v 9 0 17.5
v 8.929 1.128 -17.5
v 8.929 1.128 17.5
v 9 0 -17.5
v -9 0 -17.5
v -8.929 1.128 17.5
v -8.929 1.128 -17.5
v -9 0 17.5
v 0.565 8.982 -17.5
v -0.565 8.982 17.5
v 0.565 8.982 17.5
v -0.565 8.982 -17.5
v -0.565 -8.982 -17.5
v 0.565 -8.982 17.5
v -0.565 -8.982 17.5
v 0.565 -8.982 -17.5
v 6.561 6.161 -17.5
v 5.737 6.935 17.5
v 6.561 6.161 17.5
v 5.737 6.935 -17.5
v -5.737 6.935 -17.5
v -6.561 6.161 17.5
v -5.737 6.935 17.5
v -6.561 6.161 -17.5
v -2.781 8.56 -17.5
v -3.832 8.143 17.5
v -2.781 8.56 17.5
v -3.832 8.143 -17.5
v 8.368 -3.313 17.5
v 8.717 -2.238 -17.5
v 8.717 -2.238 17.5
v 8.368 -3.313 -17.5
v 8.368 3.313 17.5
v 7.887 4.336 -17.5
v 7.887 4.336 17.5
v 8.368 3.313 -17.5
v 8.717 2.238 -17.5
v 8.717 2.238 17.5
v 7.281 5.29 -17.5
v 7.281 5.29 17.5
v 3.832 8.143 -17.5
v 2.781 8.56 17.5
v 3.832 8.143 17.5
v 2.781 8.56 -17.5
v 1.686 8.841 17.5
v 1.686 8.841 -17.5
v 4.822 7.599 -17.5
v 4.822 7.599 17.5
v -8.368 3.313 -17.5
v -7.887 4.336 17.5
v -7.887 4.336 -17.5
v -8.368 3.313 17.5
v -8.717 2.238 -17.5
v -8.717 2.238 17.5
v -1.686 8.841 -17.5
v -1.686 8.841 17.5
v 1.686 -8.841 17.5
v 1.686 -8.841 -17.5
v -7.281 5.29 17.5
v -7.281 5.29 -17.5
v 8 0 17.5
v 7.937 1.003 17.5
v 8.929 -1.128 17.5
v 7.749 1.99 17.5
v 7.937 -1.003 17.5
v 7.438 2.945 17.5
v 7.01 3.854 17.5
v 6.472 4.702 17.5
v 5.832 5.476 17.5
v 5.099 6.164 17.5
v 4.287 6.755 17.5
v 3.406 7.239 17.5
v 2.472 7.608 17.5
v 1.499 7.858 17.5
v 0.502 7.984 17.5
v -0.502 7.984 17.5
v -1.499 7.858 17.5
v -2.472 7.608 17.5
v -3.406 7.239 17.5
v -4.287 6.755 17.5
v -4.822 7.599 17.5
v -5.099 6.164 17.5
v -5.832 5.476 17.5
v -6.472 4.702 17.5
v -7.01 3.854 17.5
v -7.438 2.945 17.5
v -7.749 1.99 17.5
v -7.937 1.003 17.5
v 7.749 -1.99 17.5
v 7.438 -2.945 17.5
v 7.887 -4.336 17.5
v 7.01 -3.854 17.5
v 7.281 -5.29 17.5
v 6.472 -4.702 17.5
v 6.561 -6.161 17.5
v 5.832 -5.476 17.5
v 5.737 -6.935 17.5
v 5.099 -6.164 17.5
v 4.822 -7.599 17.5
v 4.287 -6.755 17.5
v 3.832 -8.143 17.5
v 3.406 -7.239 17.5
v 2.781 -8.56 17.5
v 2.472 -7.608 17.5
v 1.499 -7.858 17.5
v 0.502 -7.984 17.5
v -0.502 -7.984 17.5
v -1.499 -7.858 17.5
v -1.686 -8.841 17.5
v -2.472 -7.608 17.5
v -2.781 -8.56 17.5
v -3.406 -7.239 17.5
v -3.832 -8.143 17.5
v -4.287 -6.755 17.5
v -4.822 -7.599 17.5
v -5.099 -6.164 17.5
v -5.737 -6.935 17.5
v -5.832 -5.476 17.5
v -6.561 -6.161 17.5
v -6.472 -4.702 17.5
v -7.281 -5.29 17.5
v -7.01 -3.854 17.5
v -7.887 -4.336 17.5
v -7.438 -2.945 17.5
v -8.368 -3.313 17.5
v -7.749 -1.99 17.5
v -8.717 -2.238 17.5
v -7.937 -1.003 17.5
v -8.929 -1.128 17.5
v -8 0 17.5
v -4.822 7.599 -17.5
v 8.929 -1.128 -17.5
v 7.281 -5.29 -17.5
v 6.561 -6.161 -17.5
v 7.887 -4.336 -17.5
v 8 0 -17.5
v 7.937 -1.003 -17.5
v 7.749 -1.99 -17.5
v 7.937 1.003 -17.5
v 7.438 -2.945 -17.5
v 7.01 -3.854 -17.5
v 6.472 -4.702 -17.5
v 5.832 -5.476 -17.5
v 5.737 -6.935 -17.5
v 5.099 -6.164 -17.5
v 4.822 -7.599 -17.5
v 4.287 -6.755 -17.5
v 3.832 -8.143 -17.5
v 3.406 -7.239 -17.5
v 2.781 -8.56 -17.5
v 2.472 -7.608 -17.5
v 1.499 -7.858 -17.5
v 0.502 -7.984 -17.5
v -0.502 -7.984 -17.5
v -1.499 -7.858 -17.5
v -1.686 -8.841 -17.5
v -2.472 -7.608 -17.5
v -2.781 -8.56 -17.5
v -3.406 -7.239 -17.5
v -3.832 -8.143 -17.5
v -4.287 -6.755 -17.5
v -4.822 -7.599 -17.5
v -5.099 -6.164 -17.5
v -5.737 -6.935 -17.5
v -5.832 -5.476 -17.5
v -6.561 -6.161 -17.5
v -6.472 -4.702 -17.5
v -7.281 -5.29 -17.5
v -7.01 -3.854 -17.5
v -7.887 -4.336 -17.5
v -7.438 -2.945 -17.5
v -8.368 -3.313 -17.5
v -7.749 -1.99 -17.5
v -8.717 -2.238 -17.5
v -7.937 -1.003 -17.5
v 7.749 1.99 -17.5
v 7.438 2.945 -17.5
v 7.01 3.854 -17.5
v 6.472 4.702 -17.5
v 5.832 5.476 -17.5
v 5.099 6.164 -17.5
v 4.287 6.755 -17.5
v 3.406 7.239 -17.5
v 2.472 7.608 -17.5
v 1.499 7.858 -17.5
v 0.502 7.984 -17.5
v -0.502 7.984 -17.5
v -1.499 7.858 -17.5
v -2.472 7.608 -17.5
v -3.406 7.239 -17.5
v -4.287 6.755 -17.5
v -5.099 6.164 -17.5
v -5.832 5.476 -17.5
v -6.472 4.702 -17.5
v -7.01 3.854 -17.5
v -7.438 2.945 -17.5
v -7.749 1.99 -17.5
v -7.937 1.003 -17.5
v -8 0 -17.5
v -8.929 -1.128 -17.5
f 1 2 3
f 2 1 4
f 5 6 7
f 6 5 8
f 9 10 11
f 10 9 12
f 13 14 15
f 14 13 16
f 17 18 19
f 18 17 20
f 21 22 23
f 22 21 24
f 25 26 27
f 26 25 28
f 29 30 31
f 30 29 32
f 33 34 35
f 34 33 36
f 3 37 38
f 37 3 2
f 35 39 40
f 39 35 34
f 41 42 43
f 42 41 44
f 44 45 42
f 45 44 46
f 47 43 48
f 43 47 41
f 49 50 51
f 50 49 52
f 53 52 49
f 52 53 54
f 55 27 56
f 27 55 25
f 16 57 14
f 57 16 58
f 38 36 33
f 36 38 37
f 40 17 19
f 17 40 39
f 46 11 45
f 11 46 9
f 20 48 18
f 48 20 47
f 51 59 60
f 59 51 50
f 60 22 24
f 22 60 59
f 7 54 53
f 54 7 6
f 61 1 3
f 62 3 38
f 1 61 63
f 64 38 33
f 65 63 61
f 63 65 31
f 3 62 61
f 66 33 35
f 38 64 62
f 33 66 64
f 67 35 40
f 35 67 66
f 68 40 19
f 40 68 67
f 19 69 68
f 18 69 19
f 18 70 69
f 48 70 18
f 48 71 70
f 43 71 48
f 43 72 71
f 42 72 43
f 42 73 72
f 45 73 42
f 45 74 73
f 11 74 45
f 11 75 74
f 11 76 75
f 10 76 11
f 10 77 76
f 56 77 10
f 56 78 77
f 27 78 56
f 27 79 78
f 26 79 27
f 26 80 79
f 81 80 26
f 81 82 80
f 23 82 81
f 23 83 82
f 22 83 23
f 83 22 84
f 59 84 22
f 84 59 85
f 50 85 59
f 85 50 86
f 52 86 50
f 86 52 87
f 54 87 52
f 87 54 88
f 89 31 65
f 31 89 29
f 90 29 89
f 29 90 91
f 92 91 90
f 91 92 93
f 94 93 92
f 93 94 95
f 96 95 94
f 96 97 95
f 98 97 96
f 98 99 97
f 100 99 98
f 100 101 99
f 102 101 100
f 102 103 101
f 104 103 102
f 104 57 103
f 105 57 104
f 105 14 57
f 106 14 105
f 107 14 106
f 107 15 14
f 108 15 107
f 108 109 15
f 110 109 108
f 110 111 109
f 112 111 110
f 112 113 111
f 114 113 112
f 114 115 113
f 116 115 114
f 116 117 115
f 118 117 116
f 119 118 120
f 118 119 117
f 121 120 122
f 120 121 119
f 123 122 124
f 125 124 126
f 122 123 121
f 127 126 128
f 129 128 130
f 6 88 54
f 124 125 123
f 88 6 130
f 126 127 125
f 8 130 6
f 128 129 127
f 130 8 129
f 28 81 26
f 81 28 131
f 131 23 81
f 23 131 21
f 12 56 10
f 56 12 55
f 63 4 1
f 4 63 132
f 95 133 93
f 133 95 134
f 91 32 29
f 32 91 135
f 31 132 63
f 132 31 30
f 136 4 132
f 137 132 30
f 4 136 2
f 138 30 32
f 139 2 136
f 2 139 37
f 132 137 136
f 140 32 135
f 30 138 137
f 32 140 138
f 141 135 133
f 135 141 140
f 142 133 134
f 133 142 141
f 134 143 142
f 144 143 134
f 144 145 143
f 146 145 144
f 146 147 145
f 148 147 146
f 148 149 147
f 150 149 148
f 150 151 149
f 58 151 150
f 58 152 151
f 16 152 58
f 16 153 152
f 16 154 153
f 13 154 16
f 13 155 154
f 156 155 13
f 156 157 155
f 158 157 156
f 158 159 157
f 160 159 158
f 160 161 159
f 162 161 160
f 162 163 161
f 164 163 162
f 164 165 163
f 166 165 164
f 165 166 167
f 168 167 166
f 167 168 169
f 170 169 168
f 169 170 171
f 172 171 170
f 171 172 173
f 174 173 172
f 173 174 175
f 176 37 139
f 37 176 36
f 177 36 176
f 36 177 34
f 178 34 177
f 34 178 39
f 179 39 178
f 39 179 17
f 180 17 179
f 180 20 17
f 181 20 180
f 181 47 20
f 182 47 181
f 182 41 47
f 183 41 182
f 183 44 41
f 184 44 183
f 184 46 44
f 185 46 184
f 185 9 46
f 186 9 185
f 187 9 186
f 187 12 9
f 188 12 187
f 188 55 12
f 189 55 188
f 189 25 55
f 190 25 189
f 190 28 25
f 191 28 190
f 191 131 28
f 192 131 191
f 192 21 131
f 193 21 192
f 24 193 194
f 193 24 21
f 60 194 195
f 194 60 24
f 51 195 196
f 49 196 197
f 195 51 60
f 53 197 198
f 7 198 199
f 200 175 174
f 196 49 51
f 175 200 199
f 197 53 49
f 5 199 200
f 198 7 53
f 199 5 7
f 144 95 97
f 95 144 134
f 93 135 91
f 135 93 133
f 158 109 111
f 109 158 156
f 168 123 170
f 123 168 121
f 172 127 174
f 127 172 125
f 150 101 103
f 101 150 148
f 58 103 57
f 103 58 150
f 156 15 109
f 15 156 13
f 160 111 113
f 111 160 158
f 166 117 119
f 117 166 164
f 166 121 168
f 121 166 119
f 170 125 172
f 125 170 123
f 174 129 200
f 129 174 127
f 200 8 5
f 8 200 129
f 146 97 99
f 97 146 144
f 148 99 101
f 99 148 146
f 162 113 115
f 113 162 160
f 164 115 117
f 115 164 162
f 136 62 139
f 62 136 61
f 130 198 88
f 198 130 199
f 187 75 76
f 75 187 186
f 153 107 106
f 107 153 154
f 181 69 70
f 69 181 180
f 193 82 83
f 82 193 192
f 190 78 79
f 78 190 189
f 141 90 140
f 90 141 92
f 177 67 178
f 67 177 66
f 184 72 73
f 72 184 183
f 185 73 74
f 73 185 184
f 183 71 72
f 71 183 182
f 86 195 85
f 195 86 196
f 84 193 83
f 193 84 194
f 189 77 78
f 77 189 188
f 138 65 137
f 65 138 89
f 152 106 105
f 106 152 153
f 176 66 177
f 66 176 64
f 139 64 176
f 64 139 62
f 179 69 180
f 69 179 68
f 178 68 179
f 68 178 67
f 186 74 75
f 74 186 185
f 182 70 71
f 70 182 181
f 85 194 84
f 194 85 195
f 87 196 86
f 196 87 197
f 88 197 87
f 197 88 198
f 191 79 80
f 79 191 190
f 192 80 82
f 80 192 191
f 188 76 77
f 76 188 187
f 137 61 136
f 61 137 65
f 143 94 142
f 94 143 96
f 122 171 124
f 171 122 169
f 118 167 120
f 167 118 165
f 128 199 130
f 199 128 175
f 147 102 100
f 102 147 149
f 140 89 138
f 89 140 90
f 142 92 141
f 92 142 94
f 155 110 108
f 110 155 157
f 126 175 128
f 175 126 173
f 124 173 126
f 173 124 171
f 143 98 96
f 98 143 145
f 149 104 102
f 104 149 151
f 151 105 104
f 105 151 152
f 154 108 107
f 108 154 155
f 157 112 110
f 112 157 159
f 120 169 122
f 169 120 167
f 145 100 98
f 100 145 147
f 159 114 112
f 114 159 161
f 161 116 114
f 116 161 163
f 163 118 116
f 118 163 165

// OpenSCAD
$fn = 50;


difference() {
	union() {
		translate(v = [0, 0, -17.5000000000]) {
			cylinder(h = 35, r = 9.0000000000);
		}
	}
	union() {
		translate(v = [0, 0, -100.0000000000]) {
			cylinder(h = 200, r = 8);
		}
	}
}
